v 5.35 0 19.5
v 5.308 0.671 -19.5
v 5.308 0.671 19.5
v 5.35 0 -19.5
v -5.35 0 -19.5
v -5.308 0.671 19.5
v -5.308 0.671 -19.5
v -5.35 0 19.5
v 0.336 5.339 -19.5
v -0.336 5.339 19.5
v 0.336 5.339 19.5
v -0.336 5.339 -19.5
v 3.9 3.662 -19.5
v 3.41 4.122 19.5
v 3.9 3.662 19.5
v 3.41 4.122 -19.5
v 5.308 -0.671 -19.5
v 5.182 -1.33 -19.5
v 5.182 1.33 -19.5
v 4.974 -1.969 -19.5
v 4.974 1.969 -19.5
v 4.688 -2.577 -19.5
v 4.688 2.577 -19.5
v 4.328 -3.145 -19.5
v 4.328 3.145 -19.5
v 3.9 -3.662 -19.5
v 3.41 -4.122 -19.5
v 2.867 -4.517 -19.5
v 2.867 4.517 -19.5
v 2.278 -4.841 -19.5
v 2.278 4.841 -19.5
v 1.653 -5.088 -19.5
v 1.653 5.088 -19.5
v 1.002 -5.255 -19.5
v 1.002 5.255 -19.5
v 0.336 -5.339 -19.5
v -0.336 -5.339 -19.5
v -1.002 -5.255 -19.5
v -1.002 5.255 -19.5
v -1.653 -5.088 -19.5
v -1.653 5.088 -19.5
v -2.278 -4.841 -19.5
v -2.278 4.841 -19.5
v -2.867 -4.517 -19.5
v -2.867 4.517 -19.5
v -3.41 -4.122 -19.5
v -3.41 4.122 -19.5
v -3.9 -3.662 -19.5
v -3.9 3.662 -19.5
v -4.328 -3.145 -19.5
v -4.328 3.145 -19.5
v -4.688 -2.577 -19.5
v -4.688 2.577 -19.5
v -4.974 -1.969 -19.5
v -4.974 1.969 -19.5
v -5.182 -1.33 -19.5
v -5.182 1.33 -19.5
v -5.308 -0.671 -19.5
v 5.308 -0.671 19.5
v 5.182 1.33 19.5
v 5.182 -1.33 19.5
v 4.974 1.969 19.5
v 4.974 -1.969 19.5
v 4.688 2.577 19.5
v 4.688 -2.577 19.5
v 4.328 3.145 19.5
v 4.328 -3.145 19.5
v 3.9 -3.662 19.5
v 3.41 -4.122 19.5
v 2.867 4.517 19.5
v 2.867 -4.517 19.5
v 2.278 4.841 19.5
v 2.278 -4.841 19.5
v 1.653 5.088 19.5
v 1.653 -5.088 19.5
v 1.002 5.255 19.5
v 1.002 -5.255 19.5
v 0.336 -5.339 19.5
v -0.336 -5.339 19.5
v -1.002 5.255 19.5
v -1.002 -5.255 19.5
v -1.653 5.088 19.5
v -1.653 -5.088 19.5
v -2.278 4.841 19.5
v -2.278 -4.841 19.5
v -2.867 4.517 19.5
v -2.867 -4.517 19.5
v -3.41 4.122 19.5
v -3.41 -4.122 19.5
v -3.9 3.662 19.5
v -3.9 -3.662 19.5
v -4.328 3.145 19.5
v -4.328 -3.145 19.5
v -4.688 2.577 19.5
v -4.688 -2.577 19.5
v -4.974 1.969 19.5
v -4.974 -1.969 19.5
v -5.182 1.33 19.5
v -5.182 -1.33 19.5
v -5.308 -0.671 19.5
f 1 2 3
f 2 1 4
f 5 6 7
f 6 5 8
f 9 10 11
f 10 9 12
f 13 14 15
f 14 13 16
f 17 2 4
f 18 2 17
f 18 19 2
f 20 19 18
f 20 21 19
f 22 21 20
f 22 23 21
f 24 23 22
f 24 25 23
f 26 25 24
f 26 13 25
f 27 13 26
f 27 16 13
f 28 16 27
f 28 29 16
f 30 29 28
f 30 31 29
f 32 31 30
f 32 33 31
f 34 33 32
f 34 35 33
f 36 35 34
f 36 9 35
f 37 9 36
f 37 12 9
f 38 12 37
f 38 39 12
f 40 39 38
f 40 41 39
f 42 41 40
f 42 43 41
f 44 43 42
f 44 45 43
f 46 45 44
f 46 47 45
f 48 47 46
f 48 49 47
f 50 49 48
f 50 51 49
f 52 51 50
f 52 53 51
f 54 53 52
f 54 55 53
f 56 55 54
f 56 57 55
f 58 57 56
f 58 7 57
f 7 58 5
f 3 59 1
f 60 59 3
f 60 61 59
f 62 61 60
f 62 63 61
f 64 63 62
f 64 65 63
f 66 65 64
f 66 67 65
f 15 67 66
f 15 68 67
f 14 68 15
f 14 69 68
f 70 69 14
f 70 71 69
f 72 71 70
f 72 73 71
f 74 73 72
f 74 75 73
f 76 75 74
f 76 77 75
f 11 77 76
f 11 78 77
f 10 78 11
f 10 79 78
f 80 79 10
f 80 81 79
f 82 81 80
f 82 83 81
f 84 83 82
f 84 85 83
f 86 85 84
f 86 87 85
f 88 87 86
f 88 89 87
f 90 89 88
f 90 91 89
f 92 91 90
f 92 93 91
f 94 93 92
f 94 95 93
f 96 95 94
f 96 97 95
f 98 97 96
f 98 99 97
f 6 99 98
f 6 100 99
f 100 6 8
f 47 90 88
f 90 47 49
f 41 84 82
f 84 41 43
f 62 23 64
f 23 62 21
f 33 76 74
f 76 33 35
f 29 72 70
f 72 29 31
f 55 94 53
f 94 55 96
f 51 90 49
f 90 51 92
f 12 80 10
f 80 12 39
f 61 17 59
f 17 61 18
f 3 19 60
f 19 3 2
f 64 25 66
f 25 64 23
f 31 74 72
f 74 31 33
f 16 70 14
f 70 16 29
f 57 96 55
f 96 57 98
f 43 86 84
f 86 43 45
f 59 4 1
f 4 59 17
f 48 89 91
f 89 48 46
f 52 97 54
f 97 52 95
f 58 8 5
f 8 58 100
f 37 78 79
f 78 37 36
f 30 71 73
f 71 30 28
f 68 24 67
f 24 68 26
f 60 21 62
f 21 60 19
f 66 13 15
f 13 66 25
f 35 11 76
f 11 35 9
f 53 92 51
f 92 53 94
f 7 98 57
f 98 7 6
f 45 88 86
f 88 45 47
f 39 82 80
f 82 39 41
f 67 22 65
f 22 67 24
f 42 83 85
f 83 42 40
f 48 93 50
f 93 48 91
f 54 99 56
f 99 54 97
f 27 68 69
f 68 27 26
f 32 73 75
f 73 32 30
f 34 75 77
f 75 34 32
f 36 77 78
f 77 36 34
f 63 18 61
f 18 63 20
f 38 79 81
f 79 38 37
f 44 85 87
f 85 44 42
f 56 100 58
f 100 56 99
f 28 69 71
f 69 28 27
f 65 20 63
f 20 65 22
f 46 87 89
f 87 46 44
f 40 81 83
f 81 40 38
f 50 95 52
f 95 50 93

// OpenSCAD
$fn = 50;


difference() {
	union() {
		translate(v = [0, 0, -19.5000000000]) {
			cylinder(h = 39, r = 5.3500000000);
		}
	}
	union() {
		translate(v = [0, 0, -100.0000000000]) {
			cylinder(h = 200, r = 0);
		}
	}
}
